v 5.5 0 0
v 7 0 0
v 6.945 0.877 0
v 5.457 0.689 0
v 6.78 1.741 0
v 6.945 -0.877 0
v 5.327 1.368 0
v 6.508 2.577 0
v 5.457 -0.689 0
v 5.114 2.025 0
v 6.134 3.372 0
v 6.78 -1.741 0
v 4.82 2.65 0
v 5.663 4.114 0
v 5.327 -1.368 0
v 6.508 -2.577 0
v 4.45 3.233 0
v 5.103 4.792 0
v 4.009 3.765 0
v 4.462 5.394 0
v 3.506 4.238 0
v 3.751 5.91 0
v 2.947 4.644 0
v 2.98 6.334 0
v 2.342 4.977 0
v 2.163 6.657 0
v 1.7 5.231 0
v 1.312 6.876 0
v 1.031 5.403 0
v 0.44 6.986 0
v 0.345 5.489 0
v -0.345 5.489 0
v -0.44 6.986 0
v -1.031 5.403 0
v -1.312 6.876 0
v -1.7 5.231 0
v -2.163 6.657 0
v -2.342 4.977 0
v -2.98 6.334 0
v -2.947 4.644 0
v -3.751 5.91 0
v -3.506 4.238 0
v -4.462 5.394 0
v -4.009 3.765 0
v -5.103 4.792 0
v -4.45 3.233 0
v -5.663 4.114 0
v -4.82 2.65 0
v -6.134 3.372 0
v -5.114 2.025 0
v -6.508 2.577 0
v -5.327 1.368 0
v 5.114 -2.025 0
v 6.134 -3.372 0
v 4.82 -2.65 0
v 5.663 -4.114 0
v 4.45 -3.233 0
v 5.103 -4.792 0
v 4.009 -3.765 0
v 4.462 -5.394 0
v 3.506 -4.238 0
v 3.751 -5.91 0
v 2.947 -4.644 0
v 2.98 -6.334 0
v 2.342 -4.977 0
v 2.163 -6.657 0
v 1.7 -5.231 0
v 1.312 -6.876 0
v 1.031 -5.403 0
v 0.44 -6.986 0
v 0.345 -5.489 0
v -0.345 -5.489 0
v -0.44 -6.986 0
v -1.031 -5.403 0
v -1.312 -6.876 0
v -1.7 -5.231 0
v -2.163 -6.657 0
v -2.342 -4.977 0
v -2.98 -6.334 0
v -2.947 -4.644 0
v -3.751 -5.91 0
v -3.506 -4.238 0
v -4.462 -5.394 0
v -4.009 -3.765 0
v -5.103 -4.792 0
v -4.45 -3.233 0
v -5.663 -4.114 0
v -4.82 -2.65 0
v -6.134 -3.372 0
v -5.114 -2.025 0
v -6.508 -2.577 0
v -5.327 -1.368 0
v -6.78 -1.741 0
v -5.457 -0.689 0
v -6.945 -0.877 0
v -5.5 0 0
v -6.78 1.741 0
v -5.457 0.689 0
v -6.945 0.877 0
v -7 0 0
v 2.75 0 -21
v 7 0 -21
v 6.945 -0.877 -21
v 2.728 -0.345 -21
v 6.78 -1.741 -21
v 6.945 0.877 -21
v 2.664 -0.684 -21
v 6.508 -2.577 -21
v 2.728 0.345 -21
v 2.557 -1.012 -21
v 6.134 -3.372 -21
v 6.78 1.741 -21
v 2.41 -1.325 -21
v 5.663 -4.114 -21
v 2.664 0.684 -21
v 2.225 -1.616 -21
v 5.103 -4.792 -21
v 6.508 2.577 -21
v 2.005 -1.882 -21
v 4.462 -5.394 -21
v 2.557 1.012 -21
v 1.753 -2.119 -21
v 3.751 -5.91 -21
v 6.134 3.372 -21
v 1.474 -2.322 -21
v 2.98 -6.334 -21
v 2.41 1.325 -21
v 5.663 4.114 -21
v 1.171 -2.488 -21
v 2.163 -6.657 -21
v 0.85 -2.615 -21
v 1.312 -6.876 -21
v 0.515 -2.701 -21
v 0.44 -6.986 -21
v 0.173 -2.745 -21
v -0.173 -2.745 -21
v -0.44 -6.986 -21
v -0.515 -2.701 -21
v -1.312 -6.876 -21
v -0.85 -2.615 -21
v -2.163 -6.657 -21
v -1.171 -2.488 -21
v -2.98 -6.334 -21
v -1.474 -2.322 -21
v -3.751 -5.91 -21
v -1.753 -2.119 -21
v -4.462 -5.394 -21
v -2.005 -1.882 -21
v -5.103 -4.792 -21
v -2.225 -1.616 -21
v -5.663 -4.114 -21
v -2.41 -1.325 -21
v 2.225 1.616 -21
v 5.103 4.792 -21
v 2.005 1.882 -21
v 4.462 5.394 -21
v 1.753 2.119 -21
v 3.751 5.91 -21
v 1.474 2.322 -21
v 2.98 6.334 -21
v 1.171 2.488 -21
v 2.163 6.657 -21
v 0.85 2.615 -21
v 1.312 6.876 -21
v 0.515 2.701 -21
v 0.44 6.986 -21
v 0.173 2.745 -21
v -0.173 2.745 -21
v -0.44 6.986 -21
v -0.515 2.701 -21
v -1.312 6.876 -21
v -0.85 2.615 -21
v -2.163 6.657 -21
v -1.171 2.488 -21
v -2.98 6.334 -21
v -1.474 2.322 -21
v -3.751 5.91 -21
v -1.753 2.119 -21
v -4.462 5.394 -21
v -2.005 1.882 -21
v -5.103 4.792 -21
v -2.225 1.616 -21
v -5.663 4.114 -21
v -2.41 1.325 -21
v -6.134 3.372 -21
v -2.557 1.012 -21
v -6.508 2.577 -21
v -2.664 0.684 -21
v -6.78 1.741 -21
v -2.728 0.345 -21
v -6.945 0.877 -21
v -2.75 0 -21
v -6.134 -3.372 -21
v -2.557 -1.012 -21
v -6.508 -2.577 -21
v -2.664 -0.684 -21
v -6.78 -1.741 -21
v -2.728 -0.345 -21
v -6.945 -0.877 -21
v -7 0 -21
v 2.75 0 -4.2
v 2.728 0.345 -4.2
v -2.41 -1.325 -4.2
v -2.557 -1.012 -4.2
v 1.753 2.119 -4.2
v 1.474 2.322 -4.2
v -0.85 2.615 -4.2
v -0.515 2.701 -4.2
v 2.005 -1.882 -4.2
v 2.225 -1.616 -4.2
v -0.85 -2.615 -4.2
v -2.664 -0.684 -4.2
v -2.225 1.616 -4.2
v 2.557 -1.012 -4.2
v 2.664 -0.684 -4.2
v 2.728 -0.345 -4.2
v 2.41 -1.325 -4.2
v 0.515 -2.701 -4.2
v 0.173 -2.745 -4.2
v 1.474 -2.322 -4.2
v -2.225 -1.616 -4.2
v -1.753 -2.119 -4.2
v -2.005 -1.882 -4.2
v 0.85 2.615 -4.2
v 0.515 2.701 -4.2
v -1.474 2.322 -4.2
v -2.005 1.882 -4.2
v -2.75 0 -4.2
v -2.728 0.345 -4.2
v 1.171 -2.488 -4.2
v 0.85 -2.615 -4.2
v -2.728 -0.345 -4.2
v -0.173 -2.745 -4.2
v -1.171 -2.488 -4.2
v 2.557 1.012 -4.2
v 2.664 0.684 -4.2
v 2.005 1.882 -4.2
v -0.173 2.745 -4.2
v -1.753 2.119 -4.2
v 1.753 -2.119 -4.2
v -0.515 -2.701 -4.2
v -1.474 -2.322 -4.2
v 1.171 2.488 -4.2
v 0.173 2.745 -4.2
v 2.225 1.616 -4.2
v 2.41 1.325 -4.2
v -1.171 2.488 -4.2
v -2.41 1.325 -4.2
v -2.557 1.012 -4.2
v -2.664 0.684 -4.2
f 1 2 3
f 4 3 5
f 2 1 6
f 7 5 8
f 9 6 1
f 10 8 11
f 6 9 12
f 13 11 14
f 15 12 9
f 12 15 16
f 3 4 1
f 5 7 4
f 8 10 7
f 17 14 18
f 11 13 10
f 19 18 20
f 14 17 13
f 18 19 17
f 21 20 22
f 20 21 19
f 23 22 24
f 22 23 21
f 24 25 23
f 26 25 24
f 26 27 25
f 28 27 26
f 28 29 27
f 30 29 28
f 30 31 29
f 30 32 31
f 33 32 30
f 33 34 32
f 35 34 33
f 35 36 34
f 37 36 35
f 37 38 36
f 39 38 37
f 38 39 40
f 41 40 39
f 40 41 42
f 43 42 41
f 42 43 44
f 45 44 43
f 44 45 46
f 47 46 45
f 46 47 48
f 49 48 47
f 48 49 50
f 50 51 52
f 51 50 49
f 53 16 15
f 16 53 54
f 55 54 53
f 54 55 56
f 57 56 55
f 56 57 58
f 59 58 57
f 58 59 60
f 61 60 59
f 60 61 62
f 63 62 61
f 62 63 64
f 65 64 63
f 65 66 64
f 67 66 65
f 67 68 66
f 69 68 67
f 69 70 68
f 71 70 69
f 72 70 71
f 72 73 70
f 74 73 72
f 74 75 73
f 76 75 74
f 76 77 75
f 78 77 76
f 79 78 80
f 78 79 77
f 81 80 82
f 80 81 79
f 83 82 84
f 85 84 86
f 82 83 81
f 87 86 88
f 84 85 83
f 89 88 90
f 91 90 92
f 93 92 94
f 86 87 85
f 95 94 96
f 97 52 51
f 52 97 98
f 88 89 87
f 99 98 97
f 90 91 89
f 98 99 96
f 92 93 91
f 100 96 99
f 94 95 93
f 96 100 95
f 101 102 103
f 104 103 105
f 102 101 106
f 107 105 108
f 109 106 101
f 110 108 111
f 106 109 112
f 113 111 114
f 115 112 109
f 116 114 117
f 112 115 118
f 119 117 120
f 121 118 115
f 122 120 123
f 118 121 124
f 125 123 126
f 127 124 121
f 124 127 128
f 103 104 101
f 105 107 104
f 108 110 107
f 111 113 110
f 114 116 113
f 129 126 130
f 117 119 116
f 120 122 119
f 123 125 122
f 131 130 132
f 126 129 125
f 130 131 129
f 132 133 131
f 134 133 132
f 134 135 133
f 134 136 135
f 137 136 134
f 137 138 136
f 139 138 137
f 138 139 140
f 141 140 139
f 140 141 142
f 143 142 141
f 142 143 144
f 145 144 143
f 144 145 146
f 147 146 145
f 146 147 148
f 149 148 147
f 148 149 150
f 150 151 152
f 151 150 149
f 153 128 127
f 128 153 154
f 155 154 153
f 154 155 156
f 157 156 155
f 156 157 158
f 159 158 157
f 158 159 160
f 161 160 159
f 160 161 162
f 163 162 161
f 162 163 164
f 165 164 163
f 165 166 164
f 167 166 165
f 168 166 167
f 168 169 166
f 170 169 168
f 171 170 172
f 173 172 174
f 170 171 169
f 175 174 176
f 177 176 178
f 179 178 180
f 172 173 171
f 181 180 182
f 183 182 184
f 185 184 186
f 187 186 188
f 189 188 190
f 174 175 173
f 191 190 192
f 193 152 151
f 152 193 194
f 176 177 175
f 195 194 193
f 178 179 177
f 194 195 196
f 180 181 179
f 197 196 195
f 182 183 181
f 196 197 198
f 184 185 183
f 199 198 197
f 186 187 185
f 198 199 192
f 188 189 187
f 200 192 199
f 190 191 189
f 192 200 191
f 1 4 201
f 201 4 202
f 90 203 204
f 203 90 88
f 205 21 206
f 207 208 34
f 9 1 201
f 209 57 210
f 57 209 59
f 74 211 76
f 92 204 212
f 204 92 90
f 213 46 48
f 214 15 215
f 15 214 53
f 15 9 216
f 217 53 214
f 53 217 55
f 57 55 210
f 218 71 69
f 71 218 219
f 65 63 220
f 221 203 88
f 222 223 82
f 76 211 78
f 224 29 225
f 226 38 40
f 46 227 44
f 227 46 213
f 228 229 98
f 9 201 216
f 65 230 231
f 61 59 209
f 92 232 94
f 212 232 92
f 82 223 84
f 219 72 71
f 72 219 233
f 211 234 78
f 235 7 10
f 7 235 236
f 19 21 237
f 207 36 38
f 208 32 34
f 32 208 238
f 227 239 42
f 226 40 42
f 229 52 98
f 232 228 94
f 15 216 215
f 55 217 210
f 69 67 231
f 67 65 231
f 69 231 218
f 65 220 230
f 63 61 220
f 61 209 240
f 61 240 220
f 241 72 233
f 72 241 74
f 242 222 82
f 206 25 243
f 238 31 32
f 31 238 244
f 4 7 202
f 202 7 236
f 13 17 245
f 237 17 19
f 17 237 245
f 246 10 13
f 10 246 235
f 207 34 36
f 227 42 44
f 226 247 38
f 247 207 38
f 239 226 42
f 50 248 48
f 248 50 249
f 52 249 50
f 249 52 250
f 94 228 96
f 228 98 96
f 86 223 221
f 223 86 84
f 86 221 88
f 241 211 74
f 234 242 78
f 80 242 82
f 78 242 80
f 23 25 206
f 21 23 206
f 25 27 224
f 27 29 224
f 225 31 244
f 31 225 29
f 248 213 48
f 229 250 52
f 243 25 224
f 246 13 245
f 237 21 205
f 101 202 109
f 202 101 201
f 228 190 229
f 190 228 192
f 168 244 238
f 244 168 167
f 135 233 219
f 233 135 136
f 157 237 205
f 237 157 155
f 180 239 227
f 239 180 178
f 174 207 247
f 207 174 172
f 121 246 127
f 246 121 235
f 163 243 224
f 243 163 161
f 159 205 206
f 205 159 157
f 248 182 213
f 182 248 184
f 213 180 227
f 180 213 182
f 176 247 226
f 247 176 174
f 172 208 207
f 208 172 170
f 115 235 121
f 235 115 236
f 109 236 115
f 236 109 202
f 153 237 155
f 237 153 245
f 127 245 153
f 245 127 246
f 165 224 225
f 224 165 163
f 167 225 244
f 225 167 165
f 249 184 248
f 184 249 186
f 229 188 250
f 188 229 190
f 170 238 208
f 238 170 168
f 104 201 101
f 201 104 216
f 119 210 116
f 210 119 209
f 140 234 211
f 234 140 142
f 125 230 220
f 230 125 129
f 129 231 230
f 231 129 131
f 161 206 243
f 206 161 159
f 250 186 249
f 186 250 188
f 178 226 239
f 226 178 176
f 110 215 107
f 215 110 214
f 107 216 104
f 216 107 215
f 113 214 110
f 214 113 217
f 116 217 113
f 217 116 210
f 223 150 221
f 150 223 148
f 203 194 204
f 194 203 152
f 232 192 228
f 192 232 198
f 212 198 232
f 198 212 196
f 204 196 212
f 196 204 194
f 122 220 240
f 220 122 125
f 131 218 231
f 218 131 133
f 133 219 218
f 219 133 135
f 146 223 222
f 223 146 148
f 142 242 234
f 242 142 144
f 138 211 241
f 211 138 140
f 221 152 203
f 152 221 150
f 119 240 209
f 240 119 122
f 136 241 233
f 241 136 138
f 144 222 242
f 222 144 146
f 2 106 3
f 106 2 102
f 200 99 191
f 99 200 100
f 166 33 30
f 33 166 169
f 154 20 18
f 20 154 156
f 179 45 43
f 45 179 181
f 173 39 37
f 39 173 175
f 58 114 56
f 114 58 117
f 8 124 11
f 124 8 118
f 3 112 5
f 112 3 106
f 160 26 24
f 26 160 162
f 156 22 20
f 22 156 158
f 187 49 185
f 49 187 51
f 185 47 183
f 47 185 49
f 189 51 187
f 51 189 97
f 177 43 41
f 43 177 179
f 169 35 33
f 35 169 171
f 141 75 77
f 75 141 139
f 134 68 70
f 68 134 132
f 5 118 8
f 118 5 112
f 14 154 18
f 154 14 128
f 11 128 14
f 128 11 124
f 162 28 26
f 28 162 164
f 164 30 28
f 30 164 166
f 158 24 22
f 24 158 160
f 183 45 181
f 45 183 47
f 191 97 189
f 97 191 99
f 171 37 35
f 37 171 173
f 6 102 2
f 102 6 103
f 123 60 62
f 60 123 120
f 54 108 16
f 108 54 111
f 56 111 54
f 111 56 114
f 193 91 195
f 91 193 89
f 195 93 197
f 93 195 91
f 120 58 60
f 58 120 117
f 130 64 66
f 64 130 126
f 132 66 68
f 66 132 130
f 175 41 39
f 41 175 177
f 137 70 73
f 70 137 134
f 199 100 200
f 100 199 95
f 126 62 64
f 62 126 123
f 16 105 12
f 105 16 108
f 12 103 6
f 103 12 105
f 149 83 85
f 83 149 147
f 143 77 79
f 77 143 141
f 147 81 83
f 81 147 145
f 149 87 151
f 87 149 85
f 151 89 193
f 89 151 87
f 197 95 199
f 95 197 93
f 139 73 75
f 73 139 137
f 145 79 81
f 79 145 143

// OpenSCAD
$fn = 50;


difference() {
	union() {
		translate(v = [0, 0, -21.0000000000]) {
			cylinder(h = 21, r = 7.0000000000);
		}
		cylinder(h = 0, r = 10.0000000000);
	}
	union() {
		translate(v = [0, 0, 0]) {
			rotate(a = [0, 0, 0]) {
				difference() {
					union() {
						#translate(v = [0, 0, -21.0000000000]) {
							cylinder(h = 21, r = 2.2500000000);
						}
						#translate(v = [0, 0, -4.2000000000]) {
							cylinder(h = 4.2000000000, r = 7.0000000000, r1 = 2.7500000000, r2 = 5.5000000000);
						}
						#translate(v = [0, 0, -21.0000000000]) {
							cylinder(h = 21, r = 2.7500000000);
						}
						#translate(v = [0, 0, -21.0000000000]) {
							cylinder(h = 21, r = 2.2500000000);
						}
					}
					union();
				}
			}
		}
	}
}
